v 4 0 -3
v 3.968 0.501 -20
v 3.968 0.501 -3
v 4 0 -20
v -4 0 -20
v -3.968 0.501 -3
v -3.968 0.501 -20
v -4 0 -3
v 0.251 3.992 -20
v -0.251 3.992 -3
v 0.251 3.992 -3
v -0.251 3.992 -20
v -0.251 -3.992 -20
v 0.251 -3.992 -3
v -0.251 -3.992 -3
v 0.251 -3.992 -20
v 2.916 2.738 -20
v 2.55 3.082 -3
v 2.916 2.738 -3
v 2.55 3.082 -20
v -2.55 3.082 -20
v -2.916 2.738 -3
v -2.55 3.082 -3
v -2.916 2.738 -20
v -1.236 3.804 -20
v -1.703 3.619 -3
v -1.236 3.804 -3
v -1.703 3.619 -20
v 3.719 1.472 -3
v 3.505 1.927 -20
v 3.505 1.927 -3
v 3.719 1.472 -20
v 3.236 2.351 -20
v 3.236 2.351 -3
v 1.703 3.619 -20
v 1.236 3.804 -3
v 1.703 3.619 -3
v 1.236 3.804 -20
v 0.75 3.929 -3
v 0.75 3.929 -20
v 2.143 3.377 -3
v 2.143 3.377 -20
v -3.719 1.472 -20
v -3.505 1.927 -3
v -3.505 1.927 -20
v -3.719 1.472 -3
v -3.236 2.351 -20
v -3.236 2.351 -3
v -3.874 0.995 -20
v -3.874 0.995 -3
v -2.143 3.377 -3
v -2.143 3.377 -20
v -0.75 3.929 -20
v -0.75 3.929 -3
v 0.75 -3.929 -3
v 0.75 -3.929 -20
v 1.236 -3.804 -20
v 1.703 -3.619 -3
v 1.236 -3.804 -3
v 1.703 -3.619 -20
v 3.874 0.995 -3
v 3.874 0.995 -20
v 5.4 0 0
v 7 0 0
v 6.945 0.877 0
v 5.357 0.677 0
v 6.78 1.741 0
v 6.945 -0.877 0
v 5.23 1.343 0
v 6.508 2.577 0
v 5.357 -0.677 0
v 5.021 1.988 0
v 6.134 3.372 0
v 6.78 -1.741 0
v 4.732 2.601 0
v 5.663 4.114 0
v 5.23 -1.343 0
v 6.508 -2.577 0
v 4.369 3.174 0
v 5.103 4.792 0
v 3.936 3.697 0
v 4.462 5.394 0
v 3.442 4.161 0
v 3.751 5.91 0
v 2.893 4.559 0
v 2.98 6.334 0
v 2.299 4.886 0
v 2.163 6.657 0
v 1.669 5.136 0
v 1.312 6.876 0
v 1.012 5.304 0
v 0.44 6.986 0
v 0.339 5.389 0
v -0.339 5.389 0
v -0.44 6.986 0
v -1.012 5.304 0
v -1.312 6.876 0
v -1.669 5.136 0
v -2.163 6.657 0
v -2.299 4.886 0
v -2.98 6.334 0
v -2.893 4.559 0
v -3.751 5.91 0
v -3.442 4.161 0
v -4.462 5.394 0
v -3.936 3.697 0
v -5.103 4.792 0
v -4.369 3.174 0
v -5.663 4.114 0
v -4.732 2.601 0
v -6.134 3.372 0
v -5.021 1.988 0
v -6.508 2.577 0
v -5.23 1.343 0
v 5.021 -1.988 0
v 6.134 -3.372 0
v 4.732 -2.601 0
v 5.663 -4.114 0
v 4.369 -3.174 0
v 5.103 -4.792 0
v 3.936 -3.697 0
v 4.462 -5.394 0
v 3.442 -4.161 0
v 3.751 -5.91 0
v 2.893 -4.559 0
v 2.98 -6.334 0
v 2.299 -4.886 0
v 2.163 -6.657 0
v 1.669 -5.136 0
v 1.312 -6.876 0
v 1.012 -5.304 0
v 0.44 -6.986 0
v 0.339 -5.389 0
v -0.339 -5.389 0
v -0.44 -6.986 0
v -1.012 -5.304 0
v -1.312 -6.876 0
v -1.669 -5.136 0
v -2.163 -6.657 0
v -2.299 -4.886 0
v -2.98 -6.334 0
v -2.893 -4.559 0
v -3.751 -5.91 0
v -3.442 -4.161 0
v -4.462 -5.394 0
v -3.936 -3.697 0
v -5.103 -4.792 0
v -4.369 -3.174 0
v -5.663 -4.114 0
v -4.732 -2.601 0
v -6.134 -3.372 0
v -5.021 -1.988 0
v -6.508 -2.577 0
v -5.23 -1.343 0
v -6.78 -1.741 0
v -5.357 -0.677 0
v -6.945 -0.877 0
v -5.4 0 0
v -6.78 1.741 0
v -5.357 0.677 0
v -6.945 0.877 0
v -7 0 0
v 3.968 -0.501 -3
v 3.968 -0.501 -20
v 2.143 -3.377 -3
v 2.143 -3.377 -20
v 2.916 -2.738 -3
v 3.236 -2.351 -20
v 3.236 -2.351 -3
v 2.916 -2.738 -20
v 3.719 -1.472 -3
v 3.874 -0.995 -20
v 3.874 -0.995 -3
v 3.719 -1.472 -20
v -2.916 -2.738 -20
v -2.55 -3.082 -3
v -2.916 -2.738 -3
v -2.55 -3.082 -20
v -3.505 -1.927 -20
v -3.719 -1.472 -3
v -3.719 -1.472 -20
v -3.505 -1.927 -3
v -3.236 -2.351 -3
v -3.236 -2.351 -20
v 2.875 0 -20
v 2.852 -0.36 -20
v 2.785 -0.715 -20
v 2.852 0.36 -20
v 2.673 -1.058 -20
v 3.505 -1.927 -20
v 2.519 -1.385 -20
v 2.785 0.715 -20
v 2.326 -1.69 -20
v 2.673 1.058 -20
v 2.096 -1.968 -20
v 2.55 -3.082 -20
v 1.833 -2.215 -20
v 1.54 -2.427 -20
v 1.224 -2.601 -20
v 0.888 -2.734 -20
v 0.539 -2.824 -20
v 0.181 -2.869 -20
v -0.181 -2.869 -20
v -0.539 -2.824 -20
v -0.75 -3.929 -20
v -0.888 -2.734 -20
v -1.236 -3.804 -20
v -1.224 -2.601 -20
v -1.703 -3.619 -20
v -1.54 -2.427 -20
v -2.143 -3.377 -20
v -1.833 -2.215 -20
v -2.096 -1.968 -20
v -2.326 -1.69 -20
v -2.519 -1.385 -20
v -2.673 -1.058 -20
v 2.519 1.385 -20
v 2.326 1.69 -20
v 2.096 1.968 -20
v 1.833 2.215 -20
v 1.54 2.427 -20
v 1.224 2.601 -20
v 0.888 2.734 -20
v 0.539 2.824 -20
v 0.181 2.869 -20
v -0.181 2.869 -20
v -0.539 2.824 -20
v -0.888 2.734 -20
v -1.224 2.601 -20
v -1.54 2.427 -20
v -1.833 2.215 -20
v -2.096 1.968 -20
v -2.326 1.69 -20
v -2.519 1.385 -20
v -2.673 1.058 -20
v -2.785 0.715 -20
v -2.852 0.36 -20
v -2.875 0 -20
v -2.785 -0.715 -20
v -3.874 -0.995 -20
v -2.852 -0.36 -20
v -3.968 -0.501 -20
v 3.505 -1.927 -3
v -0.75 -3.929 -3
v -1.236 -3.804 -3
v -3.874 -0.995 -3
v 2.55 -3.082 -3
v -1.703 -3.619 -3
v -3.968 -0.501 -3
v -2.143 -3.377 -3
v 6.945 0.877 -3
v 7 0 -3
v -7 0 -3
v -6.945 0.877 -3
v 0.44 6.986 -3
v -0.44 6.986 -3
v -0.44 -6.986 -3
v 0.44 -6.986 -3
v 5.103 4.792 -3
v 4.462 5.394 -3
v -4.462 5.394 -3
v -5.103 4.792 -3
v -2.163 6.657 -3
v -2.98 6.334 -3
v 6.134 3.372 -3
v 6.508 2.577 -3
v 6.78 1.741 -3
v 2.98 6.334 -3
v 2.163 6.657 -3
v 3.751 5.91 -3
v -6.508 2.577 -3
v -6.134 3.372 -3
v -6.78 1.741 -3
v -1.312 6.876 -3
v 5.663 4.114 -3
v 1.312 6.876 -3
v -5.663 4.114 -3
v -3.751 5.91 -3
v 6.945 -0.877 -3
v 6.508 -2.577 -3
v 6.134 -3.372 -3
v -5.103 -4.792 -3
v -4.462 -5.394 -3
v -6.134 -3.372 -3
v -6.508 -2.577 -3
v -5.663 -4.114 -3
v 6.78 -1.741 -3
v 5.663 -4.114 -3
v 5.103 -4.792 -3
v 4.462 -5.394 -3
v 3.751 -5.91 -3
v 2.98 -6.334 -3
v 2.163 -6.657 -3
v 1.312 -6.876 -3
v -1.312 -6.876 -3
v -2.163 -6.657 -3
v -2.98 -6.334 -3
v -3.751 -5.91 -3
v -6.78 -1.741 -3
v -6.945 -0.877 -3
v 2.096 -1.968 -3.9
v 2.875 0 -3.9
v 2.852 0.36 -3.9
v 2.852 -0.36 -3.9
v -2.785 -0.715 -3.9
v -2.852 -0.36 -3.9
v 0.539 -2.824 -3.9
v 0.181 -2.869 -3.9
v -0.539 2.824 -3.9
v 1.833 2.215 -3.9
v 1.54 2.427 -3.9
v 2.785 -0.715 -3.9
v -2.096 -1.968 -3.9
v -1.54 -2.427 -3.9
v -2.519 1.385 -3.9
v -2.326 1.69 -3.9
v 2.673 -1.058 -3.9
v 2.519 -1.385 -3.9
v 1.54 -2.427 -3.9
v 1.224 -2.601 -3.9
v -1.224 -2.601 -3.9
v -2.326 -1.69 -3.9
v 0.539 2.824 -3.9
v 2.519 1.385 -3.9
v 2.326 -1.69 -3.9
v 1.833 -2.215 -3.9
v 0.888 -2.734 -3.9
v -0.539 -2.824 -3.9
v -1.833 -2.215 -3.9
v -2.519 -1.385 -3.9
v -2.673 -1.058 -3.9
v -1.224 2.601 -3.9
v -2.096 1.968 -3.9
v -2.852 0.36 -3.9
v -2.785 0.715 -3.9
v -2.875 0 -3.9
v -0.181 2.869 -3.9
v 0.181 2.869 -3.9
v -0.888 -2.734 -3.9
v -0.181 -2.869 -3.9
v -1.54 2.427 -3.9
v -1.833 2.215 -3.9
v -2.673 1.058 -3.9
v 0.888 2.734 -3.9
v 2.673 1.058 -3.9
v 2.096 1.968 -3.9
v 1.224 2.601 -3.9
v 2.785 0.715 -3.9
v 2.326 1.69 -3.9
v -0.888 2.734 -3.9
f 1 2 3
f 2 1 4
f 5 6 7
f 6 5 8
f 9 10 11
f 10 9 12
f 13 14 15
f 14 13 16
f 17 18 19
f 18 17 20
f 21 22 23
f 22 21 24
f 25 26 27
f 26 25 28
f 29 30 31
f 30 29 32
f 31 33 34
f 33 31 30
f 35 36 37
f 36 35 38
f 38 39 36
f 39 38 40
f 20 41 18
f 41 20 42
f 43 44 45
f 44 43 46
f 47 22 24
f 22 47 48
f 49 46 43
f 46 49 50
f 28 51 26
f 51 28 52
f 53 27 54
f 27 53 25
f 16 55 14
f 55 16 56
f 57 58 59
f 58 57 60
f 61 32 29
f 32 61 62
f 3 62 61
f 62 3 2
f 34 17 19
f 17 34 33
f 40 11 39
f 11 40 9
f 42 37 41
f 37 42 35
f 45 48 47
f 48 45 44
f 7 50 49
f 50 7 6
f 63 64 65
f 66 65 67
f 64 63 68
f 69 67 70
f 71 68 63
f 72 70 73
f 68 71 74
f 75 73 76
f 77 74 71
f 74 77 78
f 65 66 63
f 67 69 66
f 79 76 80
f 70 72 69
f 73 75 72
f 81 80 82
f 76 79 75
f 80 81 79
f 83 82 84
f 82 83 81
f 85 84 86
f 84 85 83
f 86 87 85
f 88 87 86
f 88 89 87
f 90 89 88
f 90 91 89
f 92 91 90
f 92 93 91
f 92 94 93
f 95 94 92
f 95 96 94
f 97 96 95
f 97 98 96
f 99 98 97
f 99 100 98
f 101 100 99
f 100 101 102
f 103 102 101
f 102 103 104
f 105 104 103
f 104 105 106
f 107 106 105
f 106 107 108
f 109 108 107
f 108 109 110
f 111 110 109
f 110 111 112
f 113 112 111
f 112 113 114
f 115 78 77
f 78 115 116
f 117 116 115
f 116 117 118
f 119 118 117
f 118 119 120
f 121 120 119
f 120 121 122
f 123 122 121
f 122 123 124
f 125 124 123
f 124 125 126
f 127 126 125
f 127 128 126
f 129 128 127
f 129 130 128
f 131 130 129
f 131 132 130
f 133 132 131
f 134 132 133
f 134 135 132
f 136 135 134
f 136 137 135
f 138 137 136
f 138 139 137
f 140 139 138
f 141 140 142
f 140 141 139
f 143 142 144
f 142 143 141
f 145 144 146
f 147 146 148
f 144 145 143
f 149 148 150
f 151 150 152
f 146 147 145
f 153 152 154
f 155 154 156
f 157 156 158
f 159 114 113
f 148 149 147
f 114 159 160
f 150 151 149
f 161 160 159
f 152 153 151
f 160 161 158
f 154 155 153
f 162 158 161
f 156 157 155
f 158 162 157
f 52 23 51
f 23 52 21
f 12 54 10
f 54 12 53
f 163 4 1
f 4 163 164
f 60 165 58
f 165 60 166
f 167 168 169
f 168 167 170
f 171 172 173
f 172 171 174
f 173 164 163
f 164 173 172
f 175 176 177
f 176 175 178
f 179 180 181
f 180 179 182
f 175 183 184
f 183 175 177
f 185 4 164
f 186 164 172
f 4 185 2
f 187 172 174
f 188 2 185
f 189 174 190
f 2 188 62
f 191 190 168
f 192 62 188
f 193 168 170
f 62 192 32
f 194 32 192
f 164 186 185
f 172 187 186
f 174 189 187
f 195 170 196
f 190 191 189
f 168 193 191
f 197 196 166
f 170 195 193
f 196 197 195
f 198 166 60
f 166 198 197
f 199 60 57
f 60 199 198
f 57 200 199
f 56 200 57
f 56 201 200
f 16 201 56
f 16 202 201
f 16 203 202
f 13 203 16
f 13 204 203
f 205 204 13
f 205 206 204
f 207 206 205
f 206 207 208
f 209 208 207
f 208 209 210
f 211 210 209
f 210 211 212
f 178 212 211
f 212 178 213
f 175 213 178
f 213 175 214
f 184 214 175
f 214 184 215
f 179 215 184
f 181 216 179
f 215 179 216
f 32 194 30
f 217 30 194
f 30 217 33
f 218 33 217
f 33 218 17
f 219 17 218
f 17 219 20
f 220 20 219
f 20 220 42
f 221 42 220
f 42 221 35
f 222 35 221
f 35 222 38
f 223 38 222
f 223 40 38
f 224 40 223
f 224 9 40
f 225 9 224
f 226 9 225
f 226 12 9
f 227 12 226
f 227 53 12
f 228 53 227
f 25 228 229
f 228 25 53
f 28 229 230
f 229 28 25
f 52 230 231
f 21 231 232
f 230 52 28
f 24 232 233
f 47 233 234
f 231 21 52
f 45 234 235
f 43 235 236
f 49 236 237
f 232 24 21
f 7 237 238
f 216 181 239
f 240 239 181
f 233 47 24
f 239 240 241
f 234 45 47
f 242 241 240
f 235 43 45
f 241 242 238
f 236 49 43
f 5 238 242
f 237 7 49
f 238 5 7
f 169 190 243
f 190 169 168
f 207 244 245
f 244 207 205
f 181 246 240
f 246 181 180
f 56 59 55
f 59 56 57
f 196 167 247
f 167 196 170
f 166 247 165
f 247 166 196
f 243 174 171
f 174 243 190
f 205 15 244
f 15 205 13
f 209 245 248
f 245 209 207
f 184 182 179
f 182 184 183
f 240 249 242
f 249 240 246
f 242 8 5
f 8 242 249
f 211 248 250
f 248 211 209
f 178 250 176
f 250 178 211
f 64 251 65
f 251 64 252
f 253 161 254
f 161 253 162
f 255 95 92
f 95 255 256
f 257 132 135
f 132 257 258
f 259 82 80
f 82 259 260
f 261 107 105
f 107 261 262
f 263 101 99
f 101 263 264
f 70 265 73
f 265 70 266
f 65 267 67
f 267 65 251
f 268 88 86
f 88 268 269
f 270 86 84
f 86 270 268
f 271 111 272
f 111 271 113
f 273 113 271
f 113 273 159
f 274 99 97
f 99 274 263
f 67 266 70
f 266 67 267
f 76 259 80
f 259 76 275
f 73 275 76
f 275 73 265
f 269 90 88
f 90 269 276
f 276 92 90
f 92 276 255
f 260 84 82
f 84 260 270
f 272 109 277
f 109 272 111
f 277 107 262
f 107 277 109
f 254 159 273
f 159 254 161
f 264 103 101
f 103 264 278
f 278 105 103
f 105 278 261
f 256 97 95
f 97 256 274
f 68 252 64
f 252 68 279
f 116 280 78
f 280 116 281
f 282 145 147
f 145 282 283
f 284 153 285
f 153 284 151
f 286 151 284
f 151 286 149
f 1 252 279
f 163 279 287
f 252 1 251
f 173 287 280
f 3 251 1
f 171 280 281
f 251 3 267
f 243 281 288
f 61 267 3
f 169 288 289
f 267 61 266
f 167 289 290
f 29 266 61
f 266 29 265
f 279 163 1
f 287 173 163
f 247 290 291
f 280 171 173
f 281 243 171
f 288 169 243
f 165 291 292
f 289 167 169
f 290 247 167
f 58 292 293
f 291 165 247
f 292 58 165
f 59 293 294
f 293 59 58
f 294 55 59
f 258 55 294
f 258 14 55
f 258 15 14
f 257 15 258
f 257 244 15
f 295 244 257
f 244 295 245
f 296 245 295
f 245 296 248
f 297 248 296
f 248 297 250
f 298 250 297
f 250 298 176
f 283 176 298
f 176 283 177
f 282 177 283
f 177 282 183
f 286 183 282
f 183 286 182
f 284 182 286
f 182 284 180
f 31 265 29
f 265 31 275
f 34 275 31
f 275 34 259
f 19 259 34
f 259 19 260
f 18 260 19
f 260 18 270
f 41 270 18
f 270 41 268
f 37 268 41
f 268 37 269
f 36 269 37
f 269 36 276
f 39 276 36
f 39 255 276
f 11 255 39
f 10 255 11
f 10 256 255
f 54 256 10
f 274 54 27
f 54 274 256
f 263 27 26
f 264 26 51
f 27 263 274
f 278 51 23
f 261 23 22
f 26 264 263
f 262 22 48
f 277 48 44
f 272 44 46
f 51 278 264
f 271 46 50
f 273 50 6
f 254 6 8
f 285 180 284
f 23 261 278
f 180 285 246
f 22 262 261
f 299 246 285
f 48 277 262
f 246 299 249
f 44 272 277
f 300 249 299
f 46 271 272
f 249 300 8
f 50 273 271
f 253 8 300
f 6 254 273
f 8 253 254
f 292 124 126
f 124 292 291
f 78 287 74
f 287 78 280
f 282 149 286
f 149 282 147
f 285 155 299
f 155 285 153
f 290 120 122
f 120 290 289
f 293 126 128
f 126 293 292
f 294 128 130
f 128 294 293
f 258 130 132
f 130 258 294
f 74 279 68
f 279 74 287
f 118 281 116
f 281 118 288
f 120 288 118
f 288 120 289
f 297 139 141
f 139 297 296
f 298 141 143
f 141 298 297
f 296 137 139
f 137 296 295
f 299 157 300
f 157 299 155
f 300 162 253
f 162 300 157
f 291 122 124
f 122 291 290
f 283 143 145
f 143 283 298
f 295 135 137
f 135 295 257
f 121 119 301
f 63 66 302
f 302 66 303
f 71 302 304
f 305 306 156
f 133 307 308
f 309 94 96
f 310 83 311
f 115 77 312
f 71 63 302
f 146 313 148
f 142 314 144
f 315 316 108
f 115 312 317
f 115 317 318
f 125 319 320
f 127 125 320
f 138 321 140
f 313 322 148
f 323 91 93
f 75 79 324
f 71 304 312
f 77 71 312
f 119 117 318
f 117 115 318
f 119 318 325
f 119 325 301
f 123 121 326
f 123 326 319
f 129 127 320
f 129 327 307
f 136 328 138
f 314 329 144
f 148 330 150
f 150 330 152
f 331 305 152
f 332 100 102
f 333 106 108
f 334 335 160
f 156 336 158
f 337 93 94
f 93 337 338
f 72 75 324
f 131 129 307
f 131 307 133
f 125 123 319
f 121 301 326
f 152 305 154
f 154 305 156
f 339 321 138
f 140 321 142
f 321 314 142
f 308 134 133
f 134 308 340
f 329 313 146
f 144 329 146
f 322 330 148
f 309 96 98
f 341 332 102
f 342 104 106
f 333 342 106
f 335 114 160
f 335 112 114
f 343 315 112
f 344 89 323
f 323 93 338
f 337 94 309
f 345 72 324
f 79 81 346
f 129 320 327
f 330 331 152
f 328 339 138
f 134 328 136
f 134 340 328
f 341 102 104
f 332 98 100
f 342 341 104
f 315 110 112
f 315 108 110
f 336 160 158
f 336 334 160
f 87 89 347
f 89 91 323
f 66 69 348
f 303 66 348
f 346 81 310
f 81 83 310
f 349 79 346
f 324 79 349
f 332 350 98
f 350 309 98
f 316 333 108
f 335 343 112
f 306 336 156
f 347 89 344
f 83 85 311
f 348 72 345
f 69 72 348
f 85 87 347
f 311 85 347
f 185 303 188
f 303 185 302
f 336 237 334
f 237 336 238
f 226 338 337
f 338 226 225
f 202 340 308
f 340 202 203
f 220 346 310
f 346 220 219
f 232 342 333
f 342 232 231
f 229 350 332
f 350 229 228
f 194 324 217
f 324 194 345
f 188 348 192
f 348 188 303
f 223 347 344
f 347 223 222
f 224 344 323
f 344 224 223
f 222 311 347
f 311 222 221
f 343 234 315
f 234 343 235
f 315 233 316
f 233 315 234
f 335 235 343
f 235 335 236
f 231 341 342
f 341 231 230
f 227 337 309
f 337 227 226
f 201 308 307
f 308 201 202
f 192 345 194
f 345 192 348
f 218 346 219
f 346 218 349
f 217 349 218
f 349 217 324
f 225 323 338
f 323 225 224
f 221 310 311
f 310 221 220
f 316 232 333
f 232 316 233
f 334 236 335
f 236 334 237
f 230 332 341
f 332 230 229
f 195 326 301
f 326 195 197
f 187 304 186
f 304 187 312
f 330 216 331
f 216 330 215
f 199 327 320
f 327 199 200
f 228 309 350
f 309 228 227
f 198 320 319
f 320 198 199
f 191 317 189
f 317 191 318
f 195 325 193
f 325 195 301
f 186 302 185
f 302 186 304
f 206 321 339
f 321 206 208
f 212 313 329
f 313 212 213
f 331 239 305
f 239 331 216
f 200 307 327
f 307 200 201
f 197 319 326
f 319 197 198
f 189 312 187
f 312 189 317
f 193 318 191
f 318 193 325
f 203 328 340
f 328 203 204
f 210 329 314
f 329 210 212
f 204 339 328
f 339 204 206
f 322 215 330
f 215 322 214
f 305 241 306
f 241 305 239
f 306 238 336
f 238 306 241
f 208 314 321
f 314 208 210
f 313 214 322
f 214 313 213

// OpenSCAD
$fn = 50;


difference() {
	union() {
		translate(v = [0, 0, -20.0000000000]) {
			cylinder(h = 20, r = 4.0000000000);
		}
		translate(v = [0, 0, -3.0000000000]) {
			cylinder(h = 3, r = 7.0000000000);
		}
	}
	union() {
		translate(v = [0, 0, 0]) {
			rotate(a = [0, 0, 0]) {
				difference() {
					union() {
						#translate(v = [0, 0, -20.0000000000]) {
							cylinder(h = 20, r = 2.6000000000);
						}
						#translate(v = [0, 0, -3.9000000000]) {
							cylinder(h = 3.9000000000, r = 4.0000000000, r1 = 2.8750000000, r2 = 5.4000000000);
						}
						#translate(v = [0, 0, -20.0000000000]) {
							cylinder(h = 20, r = 2.8750000000);
						}
						#translate(v = [0, 0, -20.0000000000]) {
							cylinder(h = 20, r = 2.6000000000);
						}
					}
					union();
				}
			}
		}
	}
}
